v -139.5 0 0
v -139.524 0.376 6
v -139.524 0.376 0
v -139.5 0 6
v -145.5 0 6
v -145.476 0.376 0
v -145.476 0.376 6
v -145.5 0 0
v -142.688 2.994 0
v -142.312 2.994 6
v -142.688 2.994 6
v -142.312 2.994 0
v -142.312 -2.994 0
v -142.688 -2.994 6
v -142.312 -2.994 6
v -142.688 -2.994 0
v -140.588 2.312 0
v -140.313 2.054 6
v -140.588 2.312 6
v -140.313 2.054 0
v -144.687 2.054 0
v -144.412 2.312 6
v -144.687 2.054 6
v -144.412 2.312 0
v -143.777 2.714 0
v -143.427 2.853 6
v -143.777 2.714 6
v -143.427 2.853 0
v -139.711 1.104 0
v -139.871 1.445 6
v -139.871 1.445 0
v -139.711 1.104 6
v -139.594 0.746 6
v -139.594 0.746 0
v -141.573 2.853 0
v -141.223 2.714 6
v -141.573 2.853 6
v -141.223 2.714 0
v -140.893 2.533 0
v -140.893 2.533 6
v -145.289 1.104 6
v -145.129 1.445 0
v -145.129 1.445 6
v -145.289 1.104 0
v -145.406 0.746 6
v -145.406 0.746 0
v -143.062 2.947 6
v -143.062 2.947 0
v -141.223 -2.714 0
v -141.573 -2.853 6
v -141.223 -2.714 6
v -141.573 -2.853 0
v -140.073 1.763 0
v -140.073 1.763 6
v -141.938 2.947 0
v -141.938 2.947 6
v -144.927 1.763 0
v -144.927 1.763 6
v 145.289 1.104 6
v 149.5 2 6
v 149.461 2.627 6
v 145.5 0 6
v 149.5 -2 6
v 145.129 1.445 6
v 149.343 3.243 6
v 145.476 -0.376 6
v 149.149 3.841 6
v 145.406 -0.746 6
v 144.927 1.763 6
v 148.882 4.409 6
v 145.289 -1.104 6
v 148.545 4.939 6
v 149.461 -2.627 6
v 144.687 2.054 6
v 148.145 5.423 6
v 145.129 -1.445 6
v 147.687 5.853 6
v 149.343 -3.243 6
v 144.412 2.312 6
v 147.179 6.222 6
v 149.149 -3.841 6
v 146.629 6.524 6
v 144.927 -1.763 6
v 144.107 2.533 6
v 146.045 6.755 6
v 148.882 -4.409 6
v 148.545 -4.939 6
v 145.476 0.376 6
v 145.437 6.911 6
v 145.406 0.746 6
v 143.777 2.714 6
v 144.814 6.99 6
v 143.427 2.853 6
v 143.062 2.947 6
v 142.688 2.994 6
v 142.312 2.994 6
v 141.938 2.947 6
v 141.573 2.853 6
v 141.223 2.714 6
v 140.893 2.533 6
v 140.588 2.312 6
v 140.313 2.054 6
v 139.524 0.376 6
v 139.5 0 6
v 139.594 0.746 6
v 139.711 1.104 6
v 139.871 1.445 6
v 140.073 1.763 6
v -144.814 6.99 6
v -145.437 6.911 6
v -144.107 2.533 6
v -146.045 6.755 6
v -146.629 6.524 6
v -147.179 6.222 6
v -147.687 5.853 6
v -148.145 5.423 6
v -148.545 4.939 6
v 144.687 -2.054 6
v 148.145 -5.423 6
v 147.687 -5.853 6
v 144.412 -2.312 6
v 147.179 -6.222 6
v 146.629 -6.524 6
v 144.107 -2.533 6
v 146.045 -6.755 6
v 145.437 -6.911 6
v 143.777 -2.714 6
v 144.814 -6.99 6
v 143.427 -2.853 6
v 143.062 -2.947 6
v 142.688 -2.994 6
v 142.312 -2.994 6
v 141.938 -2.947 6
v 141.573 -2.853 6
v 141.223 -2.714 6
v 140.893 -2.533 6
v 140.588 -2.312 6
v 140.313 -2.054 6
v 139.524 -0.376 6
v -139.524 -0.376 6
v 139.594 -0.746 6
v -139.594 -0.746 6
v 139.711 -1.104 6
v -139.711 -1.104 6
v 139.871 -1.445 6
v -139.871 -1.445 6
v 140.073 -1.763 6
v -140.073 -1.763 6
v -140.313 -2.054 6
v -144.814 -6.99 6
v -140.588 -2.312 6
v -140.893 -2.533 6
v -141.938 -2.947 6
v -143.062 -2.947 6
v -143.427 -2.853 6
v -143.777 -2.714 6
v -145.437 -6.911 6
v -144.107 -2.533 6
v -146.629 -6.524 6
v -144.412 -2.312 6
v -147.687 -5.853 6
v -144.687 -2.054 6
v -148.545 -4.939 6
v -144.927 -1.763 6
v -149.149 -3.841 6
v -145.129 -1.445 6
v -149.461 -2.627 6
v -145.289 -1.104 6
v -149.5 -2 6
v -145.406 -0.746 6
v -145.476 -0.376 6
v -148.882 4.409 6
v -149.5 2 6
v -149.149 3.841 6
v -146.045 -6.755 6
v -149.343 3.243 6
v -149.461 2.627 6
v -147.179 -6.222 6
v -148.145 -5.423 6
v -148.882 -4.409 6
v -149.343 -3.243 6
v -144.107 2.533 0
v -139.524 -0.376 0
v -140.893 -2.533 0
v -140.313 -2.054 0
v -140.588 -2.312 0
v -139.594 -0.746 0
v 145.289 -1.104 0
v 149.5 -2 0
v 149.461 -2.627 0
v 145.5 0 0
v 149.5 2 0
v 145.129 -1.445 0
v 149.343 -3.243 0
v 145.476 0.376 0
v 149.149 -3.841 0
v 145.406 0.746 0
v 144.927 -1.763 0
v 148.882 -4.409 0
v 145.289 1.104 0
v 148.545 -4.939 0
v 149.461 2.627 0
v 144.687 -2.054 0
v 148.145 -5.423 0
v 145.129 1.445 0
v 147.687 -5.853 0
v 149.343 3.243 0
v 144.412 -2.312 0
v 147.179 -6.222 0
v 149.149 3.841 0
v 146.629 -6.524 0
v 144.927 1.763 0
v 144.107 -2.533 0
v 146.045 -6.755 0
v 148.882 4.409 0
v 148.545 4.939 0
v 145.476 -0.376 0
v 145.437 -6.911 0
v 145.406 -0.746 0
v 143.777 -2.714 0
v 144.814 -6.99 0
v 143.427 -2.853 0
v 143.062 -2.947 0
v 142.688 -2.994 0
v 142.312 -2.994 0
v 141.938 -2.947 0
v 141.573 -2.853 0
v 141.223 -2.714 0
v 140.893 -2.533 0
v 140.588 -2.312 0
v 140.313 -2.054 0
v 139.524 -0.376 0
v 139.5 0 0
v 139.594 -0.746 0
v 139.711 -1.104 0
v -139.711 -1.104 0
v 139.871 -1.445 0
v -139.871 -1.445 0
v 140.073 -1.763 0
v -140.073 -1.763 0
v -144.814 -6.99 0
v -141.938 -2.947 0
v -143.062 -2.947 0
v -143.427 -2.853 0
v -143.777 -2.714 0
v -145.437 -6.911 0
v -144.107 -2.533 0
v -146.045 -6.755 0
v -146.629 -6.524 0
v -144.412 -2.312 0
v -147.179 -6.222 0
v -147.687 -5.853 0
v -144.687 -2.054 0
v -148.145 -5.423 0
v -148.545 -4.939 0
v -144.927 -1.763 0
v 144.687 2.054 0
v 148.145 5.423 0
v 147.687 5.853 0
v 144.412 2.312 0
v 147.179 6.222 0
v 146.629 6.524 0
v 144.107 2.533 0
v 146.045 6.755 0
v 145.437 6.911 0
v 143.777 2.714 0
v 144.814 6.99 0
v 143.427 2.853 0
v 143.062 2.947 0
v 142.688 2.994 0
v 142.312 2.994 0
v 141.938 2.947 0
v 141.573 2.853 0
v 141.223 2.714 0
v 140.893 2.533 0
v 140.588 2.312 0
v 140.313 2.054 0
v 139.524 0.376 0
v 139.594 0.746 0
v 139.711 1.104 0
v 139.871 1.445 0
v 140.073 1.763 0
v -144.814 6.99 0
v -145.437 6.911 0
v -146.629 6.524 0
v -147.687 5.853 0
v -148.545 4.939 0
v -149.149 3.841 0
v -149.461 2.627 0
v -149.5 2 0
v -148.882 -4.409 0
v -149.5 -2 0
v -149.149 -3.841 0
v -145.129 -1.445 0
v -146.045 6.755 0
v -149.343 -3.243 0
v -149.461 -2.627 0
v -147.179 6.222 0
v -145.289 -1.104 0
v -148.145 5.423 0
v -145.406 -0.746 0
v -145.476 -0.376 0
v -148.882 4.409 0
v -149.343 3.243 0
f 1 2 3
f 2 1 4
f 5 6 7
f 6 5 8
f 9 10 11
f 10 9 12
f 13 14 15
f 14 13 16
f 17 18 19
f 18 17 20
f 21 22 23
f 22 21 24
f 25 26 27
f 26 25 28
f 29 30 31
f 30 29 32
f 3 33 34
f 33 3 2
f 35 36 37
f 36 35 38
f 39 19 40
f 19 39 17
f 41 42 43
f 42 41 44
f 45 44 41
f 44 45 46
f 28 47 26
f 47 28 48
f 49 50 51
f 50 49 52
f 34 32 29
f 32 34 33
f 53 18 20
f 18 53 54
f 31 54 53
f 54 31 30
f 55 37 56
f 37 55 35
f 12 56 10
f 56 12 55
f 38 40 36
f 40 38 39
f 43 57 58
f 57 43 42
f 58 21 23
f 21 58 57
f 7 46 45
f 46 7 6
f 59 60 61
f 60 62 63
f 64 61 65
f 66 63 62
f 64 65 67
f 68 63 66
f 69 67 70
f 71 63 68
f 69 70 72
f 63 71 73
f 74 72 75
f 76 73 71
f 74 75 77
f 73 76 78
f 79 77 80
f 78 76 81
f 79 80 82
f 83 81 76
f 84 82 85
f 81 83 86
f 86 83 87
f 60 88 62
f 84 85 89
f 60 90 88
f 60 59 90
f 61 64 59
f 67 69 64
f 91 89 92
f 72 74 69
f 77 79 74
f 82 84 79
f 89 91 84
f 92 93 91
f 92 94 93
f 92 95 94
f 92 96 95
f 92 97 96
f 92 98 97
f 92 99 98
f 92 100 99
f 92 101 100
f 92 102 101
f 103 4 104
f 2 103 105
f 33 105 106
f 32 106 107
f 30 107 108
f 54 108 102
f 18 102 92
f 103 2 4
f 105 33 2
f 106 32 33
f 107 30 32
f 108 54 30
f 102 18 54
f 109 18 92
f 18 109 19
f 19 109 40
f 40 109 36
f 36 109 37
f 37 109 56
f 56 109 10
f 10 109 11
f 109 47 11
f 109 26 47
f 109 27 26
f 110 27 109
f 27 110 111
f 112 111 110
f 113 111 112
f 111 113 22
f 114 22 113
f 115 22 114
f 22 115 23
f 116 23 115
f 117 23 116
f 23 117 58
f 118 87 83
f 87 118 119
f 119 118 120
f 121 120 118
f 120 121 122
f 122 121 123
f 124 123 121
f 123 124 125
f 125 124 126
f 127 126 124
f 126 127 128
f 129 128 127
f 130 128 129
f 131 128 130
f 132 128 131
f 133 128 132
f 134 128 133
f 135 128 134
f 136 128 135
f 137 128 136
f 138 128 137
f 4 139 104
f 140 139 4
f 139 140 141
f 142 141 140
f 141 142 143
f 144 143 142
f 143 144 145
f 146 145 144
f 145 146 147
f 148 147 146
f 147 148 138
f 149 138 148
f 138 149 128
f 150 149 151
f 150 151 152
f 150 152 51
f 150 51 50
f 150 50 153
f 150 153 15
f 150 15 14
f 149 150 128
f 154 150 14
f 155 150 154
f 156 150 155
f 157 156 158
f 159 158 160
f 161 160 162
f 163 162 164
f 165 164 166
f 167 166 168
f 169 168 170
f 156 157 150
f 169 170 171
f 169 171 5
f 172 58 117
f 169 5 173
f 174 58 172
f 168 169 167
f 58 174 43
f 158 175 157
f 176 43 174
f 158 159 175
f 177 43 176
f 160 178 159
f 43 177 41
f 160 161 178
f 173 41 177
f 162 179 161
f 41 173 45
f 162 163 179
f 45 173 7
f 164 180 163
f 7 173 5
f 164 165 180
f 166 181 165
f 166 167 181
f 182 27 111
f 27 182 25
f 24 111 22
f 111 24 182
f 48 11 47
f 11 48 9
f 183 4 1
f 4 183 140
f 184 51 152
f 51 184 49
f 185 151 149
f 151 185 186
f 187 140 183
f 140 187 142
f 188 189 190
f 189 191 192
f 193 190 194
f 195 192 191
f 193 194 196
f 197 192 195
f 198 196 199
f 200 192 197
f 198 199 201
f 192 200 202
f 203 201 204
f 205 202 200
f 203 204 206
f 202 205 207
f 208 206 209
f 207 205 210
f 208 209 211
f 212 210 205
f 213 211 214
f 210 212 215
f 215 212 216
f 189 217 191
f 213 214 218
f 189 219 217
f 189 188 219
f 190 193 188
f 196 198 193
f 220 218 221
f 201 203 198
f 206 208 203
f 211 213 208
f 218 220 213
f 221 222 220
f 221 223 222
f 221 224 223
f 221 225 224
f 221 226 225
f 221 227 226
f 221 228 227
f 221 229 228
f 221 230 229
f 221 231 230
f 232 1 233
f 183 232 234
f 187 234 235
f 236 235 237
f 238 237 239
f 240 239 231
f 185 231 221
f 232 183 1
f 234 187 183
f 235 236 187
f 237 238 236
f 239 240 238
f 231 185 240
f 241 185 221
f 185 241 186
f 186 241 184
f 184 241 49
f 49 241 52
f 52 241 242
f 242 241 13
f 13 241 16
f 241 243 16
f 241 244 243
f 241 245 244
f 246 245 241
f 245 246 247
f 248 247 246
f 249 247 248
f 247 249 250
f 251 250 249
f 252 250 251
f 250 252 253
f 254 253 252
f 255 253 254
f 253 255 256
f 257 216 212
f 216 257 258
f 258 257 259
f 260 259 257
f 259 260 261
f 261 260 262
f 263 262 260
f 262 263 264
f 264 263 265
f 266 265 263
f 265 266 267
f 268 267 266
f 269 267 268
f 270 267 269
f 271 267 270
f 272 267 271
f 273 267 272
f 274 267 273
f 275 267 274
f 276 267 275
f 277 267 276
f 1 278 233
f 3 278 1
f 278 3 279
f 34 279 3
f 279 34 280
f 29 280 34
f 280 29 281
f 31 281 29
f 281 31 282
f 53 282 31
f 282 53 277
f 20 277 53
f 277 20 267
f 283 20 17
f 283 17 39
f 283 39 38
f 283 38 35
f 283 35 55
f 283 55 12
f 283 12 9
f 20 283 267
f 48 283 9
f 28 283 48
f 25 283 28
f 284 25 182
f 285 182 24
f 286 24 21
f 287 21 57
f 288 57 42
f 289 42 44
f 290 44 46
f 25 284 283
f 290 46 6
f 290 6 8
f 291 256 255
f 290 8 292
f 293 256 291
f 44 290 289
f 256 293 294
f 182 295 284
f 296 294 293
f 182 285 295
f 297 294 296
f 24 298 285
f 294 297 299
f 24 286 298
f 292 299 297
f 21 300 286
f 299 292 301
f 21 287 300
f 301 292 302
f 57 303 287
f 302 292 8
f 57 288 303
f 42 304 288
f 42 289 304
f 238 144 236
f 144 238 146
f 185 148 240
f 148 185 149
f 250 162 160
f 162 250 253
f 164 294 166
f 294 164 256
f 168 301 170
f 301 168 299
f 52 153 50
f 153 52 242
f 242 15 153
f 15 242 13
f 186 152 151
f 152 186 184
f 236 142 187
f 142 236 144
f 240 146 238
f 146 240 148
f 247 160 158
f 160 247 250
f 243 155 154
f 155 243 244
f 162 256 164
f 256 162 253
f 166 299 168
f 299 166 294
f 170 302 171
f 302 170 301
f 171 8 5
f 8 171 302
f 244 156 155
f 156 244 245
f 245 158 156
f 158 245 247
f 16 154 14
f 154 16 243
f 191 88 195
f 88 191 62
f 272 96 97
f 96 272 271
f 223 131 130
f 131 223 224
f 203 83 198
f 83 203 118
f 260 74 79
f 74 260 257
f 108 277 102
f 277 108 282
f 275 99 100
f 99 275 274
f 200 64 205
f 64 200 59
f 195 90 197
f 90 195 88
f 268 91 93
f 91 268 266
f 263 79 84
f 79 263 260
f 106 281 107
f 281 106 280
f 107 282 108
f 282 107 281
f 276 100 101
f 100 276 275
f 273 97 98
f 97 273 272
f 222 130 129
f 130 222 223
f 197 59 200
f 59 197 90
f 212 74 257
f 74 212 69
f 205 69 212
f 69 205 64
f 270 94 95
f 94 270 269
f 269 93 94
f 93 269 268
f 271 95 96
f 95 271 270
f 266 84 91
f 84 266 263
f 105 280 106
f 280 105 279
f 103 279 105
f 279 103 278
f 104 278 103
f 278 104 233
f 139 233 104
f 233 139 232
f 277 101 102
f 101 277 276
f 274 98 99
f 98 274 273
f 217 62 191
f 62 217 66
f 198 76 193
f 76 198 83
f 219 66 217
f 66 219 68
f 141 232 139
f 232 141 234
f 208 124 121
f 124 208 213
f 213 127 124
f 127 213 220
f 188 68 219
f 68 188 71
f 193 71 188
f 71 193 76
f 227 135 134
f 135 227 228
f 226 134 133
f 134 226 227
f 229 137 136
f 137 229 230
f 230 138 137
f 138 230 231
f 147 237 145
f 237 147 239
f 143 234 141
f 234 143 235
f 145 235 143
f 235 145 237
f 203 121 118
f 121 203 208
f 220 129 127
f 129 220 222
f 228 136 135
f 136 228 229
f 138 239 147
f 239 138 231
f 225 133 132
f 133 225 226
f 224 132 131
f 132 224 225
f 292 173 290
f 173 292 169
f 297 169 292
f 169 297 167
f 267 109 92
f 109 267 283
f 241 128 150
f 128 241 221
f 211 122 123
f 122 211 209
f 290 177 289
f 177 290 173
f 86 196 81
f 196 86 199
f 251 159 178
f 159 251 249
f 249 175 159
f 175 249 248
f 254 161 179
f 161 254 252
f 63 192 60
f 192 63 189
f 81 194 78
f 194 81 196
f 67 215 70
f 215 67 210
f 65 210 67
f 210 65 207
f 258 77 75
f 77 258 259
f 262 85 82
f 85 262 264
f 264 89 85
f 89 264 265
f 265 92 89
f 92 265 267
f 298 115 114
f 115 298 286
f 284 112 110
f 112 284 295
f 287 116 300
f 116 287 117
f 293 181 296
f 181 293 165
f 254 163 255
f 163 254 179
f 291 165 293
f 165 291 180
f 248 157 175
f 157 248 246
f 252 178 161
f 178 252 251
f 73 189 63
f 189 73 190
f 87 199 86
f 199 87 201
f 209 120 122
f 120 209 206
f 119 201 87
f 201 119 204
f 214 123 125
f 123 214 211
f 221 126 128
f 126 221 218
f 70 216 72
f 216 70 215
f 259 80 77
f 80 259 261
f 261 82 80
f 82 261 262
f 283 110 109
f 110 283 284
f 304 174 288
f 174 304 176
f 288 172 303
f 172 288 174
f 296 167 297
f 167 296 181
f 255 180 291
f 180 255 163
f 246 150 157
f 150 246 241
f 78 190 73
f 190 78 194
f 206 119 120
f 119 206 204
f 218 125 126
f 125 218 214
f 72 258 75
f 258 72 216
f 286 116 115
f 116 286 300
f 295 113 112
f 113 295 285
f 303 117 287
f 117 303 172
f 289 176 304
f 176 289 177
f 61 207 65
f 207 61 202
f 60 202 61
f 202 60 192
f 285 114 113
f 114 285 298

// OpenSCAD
$fn = 50;


difference() {
	union() {
		hull() {
			translate(v = [-144.5000000000, 2.0000000000, 0]) {
				cylinder(h = 6, r = 5);
			}
			translate(v = [144.5000000000, 2.0000000000, 0]) {
				cylinder(h = 6, r = 5);
			}
			translate(v = [-144.5000000000, -2.0000000000, 0]) {
				cylinder(h = 6, r = 5);
			}
			translate(v = [144.5000000000, -2.0000000000, 0]) {
				cylinder(h = 6, r = 5);
			}
		}
	}
	union() {
		translate(v = [-142.5000000000, 0.0000000000, 0]) {
			cylinder(h = 6, r = 3.0000000000);
		}
		translate(v = [142.5000000000, 0.0000000000, 0]) {
			cylinder(h = 6, r = 3.0000000000);
		}
		translate(v = [-142.5000000000, 0.0000000000, 0]) {
			cylinder(h = 6, r = 1.5000000000);
		}
		translate(v = [142.5000000000, 0.0000000000, 0]) {
			cylinder(h = 6, r = 1.5000000000);
		}
		translate(v = [-142.5000000000, 0.0000000000, 0]) {
			cylinder(h = 6, r = 1.5000000000);
		}
		translate(v = [142.5000000000, 0.0000000000, 0]) {
			cylinder(h = 6, r = 1.5000000000);
		}
		translate(v = [-142.5000000000, 0.0000000000, 0]) {
			cylinder(h = 6, r = 1.5000000000);
		}
		translate(v = [142.5000000000, 0.0000000000, 0]) {
			cylinder(h = 6, r = 1.5000000000);
		}
	}
}
